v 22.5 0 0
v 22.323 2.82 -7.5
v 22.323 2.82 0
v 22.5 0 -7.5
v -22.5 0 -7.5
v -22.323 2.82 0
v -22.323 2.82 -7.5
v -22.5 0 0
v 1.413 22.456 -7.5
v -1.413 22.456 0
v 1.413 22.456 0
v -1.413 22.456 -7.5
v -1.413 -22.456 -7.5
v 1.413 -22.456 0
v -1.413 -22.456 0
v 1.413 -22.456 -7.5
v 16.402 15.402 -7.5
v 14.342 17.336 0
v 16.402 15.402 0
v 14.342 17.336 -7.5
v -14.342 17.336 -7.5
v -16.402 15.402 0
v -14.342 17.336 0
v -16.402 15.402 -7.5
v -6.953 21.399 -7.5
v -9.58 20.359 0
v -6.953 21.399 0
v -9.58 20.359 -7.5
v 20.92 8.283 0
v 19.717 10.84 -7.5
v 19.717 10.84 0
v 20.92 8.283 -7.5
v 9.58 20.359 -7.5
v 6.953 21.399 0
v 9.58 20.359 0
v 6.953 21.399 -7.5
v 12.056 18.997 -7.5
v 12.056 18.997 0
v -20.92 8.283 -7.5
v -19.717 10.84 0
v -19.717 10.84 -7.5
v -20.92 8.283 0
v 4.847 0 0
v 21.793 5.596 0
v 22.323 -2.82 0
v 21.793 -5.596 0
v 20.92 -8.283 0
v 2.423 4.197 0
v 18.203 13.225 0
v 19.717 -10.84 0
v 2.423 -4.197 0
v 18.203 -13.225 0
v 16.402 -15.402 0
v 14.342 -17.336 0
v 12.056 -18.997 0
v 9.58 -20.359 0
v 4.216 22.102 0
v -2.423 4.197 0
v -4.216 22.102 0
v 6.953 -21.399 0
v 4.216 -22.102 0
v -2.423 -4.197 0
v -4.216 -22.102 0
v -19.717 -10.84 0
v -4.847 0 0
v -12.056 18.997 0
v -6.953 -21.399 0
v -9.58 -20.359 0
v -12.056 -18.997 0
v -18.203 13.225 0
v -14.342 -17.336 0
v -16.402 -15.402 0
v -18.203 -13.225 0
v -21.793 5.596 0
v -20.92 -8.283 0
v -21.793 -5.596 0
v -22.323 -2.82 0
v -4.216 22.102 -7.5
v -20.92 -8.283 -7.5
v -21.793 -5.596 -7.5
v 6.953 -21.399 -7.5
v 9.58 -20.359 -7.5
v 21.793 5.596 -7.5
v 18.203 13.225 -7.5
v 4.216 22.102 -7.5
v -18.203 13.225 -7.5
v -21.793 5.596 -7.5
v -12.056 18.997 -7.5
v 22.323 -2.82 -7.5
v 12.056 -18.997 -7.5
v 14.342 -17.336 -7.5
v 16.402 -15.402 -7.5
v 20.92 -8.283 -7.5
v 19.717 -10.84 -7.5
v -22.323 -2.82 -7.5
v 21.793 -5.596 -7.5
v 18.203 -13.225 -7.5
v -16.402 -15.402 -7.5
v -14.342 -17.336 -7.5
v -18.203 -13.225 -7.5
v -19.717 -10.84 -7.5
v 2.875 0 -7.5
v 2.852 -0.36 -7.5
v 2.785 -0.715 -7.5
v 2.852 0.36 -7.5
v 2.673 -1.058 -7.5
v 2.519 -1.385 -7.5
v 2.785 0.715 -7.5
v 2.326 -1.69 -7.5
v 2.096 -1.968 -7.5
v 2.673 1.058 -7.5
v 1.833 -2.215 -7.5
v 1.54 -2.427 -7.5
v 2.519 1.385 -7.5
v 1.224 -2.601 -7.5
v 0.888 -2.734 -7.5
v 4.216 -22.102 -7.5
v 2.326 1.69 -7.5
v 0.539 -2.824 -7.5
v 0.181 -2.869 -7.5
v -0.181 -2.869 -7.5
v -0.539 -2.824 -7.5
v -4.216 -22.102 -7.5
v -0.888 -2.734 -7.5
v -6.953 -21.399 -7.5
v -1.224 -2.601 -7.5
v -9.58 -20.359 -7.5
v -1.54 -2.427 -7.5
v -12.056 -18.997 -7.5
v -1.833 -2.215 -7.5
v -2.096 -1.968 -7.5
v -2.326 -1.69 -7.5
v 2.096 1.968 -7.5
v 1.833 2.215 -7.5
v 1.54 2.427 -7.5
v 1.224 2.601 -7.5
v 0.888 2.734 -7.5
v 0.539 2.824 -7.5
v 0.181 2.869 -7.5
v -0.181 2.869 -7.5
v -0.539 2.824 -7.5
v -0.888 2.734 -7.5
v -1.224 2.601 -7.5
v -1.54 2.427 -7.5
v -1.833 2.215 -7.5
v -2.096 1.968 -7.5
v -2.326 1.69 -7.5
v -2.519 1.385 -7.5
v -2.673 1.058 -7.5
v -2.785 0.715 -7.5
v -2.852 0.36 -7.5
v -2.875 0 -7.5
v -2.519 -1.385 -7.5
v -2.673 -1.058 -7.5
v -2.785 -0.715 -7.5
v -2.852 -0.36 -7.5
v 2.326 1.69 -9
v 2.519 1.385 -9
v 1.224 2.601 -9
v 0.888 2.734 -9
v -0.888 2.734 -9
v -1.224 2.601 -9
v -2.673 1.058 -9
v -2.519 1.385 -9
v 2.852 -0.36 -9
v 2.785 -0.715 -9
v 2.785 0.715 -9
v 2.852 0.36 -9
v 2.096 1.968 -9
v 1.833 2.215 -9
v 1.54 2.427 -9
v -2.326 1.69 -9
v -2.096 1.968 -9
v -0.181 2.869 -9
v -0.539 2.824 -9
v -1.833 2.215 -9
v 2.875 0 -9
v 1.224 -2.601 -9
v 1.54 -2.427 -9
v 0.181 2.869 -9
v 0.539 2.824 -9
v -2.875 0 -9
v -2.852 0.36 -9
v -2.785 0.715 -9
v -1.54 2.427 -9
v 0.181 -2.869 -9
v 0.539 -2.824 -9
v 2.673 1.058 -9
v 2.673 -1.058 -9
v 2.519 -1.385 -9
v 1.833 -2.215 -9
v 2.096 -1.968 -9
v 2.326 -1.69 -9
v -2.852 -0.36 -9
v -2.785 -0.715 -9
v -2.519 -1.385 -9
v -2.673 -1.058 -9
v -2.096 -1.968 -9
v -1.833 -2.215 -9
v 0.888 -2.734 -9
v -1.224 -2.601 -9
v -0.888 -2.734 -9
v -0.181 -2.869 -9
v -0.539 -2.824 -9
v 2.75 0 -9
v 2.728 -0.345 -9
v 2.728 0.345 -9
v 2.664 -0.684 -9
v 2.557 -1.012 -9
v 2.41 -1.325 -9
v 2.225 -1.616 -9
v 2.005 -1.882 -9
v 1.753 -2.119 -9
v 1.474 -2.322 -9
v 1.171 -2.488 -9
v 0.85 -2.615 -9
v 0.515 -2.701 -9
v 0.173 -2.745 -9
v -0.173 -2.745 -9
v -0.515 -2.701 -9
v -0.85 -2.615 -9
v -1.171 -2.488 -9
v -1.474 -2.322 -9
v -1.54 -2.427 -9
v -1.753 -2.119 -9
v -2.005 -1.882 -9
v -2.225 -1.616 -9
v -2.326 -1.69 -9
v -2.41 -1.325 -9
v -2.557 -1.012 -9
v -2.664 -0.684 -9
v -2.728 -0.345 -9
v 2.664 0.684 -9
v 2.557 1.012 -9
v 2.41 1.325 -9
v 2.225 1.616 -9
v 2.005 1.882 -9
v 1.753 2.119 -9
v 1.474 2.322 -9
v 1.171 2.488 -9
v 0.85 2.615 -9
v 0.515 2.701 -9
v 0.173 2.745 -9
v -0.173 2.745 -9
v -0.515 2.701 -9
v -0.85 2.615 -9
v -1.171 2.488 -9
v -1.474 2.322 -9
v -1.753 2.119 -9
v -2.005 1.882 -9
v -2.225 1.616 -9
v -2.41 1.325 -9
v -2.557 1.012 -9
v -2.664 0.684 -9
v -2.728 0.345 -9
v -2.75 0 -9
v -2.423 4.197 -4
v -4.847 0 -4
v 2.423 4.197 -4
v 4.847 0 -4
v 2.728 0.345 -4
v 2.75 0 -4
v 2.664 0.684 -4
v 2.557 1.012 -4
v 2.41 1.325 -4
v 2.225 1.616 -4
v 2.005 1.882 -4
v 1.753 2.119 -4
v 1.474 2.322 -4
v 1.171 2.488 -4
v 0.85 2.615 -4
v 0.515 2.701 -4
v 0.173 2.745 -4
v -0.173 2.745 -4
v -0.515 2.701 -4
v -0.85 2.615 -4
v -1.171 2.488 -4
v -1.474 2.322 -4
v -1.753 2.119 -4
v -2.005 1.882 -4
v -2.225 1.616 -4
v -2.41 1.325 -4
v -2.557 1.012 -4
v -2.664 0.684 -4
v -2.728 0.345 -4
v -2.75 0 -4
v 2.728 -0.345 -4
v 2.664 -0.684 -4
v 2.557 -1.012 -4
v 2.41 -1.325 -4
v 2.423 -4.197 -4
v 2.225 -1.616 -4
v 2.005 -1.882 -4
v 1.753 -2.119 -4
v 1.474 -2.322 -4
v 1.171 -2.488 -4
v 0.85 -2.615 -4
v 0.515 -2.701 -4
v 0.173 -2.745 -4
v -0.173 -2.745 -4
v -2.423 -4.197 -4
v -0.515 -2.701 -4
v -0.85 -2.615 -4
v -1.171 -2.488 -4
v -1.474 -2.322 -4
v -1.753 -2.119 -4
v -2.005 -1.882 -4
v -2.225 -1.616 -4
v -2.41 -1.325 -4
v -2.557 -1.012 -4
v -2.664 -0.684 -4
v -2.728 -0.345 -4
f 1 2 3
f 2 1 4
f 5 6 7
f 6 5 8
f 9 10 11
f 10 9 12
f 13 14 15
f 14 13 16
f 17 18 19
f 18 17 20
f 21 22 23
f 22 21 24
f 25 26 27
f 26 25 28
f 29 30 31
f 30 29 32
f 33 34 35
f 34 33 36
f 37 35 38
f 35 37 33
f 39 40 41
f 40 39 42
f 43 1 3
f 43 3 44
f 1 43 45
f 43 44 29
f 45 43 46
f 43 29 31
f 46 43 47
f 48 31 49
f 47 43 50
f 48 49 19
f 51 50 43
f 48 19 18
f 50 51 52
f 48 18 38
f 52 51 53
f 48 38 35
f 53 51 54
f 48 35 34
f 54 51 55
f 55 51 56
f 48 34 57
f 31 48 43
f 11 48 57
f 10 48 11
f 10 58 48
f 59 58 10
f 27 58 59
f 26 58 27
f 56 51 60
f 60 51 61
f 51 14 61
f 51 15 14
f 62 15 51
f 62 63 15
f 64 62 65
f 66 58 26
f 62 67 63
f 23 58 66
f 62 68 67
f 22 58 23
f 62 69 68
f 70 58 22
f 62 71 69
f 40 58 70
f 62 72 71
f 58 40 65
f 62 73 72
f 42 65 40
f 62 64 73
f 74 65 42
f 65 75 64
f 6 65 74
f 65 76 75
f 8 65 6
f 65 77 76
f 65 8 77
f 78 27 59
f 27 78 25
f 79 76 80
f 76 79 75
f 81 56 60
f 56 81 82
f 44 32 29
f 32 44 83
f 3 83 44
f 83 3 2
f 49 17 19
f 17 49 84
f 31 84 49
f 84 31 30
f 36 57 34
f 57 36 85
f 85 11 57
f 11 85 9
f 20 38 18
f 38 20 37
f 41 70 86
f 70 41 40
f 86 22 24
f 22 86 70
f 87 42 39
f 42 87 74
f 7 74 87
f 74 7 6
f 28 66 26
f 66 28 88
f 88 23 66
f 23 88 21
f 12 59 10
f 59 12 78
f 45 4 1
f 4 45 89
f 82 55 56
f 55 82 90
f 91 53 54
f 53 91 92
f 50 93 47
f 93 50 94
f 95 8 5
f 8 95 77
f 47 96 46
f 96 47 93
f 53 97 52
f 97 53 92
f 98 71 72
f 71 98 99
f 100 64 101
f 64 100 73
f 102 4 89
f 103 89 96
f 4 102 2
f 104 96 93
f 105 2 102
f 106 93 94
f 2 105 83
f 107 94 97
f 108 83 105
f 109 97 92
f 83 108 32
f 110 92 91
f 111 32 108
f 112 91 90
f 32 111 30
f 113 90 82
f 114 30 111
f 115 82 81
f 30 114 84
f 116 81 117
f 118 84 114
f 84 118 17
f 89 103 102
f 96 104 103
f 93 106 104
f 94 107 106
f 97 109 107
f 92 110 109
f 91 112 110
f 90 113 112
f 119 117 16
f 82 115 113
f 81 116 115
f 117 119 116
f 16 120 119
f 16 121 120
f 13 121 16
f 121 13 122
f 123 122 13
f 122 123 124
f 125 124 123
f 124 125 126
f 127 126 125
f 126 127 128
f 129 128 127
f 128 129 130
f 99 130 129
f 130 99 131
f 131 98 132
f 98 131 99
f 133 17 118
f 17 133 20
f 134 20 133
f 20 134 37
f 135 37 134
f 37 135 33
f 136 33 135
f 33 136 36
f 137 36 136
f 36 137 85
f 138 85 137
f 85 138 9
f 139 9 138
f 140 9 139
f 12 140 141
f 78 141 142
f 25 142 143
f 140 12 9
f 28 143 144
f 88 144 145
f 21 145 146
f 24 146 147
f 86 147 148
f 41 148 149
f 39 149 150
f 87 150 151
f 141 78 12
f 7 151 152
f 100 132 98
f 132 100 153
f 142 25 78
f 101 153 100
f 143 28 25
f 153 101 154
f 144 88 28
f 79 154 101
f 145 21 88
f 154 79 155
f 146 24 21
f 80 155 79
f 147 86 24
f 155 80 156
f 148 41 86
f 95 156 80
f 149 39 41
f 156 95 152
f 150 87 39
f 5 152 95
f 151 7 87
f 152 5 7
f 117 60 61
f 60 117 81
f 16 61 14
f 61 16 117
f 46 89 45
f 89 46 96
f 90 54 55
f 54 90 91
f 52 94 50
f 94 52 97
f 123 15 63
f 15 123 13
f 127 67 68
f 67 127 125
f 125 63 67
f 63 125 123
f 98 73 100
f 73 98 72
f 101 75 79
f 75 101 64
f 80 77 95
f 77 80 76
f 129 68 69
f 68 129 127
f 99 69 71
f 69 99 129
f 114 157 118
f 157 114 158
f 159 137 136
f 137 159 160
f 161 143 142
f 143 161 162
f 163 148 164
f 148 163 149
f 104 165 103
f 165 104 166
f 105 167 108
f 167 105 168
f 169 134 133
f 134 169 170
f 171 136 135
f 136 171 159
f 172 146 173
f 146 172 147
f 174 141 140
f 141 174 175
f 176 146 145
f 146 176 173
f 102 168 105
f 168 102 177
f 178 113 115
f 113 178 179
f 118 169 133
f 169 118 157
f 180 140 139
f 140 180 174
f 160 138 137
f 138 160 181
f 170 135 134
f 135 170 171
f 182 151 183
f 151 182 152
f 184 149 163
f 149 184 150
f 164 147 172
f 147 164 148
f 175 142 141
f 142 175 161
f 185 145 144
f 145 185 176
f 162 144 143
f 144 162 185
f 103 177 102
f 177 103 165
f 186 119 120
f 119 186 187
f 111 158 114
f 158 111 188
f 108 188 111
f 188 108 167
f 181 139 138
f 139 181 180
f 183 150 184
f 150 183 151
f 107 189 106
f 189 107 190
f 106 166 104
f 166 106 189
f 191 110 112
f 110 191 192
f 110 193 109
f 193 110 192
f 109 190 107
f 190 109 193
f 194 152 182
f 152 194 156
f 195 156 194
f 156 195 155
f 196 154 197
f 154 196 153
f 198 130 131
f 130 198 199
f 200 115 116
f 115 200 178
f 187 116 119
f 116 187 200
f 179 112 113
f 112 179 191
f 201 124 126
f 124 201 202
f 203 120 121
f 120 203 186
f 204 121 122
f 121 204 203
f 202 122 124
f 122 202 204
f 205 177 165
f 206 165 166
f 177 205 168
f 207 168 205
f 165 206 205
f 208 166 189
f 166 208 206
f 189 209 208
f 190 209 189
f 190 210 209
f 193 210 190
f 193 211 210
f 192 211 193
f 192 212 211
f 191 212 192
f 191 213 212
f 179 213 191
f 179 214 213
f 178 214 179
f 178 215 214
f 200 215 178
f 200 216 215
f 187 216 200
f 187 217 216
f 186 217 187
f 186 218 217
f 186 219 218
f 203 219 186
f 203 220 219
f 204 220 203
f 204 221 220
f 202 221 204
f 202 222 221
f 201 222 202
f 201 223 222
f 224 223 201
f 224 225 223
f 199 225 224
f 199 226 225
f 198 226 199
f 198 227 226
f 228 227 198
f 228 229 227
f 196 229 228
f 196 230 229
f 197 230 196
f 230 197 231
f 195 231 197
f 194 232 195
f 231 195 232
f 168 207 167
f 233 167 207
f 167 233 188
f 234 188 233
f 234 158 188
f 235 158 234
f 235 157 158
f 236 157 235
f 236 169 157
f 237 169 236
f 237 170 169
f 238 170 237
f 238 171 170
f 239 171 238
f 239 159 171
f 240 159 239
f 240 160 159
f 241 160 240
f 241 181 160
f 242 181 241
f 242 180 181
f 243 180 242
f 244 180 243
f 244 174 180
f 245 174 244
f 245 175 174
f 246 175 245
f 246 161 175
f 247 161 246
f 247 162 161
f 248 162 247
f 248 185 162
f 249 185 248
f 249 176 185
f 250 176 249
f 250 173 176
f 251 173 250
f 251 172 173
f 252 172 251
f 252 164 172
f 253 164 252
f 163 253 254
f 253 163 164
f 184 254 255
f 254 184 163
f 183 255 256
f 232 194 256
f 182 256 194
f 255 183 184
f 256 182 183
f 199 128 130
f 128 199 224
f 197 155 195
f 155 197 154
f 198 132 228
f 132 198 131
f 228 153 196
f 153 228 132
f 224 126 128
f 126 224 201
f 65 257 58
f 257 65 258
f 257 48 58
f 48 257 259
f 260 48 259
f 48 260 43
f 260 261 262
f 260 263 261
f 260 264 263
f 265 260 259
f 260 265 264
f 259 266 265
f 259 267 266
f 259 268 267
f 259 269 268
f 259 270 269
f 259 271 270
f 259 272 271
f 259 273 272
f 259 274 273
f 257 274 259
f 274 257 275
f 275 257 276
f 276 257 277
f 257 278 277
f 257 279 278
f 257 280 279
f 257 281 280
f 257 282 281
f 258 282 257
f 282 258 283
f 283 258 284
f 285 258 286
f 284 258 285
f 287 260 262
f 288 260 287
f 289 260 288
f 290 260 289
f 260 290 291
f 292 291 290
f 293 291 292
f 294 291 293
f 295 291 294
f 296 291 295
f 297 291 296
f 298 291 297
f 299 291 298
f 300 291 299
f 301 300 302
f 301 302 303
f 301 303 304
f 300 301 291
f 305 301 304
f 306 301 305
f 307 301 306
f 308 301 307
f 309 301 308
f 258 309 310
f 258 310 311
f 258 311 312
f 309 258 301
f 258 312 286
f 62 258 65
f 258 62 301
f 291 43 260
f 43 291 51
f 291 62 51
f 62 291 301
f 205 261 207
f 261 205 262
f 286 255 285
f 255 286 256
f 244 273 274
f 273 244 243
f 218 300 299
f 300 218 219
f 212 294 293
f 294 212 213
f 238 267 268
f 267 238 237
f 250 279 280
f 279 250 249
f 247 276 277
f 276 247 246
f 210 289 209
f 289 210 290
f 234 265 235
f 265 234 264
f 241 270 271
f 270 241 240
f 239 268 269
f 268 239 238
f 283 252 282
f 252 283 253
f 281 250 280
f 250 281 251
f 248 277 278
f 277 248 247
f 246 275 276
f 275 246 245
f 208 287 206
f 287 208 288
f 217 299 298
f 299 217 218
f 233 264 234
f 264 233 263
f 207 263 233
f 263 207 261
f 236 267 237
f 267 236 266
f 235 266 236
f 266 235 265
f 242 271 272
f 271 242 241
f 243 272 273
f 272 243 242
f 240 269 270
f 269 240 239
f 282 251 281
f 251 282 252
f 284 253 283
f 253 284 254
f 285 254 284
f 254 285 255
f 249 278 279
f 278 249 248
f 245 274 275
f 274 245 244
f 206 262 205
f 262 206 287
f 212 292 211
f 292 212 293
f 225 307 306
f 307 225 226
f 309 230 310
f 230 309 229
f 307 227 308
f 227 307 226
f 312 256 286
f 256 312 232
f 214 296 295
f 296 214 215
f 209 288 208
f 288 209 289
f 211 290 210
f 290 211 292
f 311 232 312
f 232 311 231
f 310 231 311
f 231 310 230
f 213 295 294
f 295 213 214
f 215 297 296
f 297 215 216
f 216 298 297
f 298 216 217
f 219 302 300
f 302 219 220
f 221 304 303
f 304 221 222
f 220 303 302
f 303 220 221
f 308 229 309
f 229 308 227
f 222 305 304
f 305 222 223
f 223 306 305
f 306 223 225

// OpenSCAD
$fn = 50;


difference() {
	union() {
		translate(v = [0, 0, -7.5000000000]) {
			cylinder(h = 7.5000000000, r = 22.5000000000);
		}
		translate(v = [0, 0, -9.0000000000]) {
			cylinder(h = 9, r = 2.8750000000);
		}
	}
	union() {
		translate(v = [0, 0, 0]) {
			rotate(a = [0, 0, 0]) {
				difference() {
					union() {
						translate(v = [0, 0, -4]) {
							linear_extrude(height = 4) {
								polygon(points = [[4.8468000000, 0.0000000000], [2.4234000000, 4.1974519271], [-2.4234000000, 4.1974519271], [-4.8468000000, 0.0000000000], [-2.4234000000, -4.1974519271], [2.4234000000, -4.1974519271]]);
							}
						}
					}
					union();
				}
			}
		}
		#translate(v = [0, 0, -100.0000000000]) {
			cylinder(h = 200, r = 2.7500000000);
		}
	}
}
